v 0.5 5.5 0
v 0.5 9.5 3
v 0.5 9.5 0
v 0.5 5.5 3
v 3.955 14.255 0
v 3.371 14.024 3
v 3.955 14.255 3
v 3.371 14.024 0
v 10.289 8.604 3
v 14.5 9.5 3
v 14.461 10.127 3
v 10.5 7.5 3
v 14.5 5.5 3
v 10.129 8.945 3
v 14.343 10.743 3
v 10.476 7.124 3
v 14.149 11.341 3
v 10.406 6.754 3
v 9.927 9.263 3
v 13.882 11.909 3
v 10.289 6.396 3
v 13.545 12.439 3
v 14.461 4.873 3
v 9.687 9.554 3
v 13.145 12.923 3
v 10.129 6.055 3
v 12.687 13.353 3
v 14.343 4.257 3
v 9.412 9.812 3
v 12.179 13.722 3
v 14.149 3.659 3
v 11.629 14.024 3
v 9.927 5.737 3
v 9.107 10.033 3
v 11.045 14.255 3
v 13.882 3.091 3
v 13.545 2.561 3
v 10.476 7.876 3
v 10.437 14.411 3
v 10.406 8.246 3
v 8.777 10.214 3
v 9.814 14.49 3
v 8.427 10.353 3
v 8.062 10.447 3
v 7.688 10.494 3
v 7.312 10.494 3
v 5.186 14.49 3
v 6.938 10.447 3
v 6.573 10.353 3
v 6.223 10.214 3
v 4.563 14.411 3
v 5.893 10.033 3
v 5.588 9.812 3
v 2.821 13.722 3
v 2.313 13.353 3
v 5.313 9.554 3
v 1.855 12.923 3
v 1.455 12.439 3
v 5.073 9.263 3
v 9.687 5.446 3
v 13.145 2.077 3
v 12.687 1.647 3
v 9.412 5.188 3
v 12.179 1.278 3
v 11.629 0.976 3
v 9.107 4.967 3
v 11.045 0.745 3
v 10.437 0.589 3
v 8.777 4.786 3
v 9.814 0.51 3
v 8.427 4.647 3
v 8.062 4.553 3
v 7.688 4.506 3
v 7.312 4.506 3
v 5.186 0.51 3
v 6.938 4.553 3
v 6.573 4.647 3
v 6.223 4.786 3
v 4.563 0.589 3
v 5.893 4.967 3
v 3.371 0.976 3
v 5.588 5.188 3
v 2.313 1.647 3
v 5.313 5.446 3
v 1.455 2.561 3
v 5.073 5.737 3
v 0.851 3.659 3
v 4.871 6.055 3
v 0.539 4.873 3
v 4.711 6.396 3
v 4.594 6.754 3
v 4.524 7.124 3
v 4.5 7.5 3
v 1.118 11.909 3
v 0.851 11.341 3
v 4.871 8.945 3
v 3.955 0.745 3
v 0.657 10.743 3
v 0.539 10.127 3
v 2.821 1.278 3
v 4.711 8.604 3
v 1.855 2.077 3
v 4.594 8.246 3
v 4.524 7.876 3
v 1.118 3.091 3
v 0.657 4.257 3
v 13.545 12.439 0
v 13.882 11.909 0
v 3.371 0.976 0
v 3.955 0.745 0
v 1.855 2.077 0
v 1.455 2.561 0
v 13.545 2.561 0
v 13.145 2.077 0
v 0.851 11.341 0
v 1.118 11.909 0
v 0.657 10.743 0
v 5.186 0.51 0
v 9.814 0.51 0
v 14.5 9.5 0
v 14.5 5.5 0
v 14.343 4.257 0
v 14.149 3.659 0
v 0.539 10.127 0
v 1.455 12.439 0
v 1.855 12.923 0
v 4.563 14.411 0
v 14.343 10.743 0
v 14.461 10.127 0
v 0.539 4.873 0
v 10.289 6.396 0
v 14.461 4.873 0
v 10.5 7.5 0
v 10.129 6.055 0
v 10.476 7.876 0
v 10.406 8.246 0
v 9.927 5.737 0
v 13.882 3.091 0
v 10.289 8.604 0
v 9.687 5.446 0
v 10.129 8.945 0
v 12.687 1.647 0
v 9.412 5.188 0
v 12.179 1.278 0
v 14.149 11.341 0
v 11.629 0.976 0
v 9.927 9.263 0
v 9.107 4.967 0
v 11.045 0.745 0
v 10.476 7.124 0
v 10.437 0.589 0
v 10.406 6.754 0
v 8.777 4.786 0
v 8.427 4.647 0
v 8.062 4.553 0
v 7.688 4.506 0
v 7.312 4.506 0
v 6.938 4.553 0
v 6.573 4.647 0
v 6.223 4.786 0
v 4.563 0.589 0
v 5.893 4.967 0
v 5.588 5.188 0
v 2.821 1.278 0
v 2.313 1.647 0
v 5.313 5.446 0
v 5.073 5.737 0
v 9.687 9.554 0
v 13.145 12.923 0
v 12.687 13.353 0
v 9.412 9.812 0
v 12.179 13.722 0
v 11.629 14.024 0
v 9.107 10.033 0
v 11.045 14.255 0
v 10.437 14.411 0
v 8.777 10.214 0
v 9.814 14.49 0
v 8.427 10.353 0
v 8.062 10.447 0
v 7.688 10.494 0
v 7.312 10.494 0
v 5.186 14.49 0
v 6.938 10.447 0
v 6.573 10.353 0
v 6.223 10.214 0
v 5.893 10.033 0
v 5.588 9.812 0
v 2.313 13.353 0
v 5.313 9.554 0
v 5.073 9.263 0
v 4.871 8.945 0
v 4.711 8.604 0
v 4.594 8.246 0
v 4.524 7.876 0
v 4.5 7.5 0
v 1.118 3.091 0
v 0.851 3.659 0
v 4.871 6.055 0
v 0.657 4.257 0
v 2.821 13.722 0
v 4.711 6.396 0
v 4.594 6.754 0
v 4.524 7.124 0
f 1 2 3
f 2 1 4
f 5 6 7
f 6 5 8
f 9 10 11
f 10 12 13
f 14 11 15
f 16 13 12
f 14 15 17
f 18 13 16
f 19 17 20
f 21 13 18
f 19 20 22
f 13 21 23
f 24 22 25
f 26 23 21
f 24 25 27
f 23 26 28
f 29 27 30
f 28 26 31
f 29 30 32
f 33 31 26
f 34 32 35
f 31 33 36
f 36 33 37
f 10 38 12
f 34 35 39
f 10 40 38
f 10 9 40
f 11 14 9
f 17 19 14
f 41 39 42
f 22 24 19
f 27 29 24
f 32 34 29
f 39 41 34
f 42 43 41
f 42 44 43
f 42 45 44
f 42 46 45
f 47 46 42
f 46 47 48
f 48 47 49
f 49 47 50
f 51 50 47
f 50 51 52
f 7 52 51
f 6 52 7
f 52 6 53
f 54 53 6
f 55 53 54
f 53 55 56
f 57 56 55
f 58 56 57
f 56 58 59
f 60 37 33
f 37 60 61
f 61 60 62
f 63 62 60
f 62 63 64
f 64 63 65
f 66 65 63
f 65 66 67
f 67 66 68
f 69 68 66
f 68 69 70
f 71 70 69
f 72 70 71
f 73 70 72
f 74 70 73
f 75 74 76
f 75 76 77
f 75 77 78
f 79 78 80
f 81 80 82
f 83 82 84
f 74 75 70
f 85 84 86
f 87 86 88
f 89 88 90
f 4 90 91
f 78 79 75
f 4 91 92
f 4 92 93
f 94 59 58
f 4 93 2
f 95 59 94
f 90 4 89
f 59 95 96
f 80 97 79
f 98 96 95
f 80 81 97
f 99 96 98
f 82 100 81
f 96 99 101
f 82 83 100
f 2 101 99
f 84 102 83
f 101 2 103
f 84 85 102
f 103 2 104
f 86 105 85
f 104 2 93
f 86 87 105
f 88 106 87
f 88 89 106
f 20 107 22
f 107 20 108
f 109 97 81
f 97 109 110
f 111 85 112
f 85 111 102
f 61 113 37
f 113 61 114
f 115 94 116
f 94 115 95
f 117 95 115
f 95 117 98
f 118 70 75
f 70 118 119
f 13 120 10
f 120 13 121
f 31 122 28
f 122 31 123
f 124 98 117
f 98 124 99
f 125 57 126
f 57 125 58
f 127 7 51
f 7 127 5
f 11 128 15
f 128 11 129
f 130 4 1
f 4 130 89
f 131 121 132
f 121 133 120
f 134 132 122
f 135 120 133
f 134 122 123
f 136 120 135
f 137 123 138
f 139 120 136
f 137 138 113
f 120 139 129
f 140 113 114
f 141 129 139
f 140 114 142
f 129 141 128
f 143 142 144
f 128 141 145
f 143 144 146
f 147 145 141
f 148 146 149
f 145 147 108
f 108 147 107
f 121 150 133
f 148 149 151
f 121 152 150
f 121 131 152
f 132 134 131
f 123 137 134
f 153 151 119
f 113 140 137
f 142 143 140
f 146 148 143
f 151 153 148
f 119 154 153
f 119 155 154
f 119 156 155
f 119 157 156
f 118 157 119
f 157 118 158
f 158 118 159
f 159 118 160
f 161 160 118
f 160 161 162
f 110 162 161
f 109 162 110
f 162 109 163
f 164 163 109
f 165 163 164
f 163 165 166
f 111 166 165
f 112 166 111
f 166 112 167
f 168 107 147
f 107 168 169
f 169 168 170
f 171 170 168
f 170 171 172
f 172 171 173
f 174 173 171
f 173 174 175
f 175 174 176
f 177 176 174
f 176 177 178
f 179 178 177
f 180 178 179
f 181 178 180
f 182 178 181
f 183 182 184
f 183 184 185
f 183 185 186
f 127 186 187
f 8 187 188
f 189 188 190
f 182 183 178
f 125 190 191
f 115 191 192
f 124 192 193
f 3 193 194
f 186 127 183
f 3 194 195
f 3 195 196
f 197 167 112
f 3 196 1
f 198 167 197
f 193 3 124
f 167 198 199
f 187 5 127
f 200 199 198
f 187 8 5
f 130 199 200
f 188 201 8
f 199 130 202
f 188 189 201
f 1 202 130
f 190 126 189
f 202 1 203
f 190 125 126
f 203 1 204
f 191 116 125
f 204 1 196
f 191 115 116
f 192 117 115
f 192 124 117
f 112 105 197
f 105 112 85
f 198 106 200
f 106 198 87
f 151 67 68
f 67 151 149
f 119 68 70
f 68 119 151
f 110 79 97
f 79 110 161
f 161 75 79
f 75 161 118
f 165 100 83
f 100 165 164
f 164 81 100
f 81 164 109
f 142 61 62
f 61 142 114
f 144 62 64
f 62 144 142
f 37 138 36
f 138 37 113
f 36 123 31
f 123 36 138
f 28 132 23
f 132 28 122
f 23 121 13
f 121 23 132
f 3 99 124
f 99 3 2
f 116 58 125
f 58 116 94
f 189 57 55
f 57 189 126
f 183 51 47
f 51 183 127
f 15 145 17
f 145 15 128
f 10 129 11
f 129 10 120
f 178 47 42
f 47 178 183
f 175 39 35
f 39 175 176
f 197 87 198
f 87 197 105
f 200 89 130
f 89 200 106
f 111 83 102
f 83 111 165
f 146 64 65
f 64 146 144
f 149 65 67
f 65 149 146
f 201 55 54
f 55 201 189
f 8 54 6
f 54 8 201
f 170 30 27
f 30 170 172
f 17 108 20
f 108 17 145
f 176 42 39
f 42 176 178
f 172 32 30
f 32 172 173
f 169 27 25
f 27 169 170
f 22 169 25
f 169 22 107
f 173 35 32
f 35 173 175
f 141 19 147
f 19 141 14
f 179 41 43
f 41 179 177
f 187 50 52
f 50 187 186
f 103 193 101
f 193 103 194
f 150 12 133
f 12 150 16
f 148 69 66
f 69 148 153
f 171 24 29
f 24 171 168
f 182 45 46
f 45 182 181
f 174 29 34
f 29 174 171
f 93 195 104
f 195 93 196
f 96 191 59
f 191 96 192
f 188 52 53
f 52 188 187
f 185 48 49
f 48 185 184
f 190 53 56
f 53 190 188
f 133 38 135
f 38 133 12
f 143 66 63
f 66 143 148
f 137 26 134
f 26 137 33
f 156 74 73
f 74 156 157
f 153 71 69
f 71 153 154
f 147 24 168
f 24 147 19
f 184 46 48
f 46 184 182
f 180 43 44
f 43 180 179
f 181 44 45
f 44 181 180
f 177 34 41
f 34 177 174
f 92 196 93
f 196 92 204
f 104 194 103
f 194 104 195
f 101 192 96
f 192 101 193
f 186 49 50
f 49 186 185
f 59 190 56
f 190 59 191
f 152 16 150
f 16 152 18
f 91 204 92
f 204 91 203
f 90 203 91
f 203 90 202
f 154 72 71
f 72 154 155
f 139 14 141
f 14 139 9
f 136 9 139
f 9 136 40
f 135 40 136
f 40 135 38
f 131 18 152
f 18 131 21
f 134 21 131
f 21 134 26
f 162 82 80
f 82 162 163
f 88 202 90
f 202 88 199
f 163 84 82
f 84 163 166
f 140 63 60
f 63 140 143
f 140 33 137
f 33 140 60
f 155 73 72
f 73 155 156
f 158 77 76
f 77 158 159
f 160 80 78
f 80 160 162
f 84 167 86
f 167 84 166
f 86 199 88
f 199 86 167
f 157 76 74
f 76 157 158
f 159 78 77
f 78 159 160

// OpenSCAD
// Generated by SolidPython 1.1.3 on 2023-01-30 13:24:27
$fn = 50;


difference() {
	union() {
		translate(v = [7.5000000000, 7.5000000000, 0]) {
			rotate(a = [0, 0, 0]) {
				hull() {
					translate(v = [-2.0000000000, 2.0000000000, 0]) {
						rotate(a = [0, 0, 0]) {
							translate(v = [0, 0, 0]) {
								rotate(a = [0, 0, 0]) {
									cylinder(h = 3, r = 5);
								}
							}
						}
					}
					translate(v = [2.0000000000, 2.0000000000, 0]) {
						rotate(a = [0, 0, 0]) {
							translate(v = [0, 0, 0]) {
								rotate(a = [0, 0, 0]) {
									cylinder(h = 3, r = 5);
								}
							}
						}
					}
					translate(v = [-2.0000000000, -2.0000000000, 0]) {
						rotate(a = [0, 0, 0]) {
							translate(v = [0, 0, 0]) {
								rotate(a = [0, 0, 0]) {
									cylinder(h = 3, r = 5);
								}
							}
						}
					}
					translate(v = [2.0000000000, -2.0000000000, 0]) {
						rotate(a = [0, 0, 0]) {
							translate(v = [0, 0, 0]) {
								rotate(a = [0, 0, 0]) {
									cylinder(h = 3, r = 5);
								}
							}
						}
					}
				}
			}
		}
	}
	union() {
		translate(v = [7.5000000000, 7.5000000000, 0]) {
			rotate(a = [0, 0, 0]) {
				translate(v = [0, 0, -50]) {
					rotate(a = [0, 0, 0]) {
						cylinder(h = 100, r = 3.0000000000);
					}
				}
			}
		}
	}
}
/***********************************************
*********      SolidPython code:      **********
************************************************
 
from solid import *
import os
import subprocess

import oomB

import opsc_library_gen

mode = "laser"
#mode = "3d_print"

defined_objects = {}

radius_dict = {}
countersunk_dict = {}


def set_mode(m):
    global mode
    mode = m
    radius_dict['M6'] = 6.5/2
    radius_dict['M3'] = 3.3/2
    if mode == "laser":
        radius_dict['M6'] = 6/2
        radius_dict['M3'] = 3/2

    countersunk_dict['M3'] = {}
    countersunk_dict['M3']['little_rad'] = radius_dict['M3']
    countersunk_dict['M3']['big_rad'] = (5.5+0.6)/2
    if mode == "laser":
        countersunk_dict['M3']['big_rad'] = (4.75+0.6)/2
        countersunk_dict['M3']['little_rad'] = (4.75+0.6)/2

    countersunk_dict['M3']['height'] = 1.7


def opsc_make_object(filename, objects, save_type="none",resolution=50, layers = 1, tilediff = 200, mode="laser"):
    set_mode(mode)
    save_type = save_type.lower()
    os.makedirs(os.path.dirname(filename), exist_ok=True)
    final_object = opsc_get_object(objects)
    # Save the final object to the specified filename    
    scad_render_to_file(final_object, filename, file_header='$fn = %s;' % resolution, include_orig_code=True)
    if mode == "laser":
        filename_laser = filename.replace(".scad","-flat.scad")
        scad_render_to_file(getLaser(final_object, layers=layers, tilediff=tilediff), filename_laser, file_header='$fn = %s;' % resolution, include_orig_code=True)
        if save_type == "all":
            saveToAll(filename_laser)
        elif save_type == "dxf":
            saveToDxf(filename_laser)
    if save_type == "all":
        saveToAll(filename)
    elif save_type == "dxf":
        saveToDxf(filename)


def opsc_get_object(objects):
    # Create the solidpython objects
    positive_objects = [get_opsc_item(obj) for obj in objects if obj['type'] == 'positive']
    negative_objects = [get_opsc_item(obj) for obj in objects if obj['type'] == 'negative']
    # Union the positive objects
    positive_object = union()(*positive_objects)
    # Union the negative objects
    negative_object = union()(*negative_objects)
    # Create the final object by subtracting the negative objects from the positive objects
    return difference()(positive_object, negative_object)

def get_opsc_item(params):
    # A dictionary to map radius string values to numerical values
    #radius_dict = {'small': 5, 'medium': 10, 'large': 15}
    # An array of function names for basic shapes
    basic_shapes = ['cube', 'sphere', 'cylinder']
    
    # An array of function names for other shapes
    other_shapes = ['hole', 'slot', 'rounded_rectangle', 'countersunk']
    


    # Convert radius to r if present, and remove radius from the params dictionary
    if 'radius' in params:
        if isinstance(params['radius'], str):
            # Use the radius_dict to map the radius string value to a numerical value
            params['r'] = radius_dict[params['radius']]
        else:
            params['r'] = params['radius']
        del params['radius']
    

    # Check if the object type is a basic shape
    if params['shape'] in basic_shapes:
        # Remove shape and unexpected dictionary values
        allowed_keys = {'size', 'r', 'r1', 'r2', 'd', 'h', 'rw', 'rh', 'dw', 'dh'}
        shape_params = {k: v for k, v in params.items() if k in allowed_keys}

        # Call the corresponding function for the shape parameter, using ** notation to pass the shape_params dictionary as keyword arguments
        return get_opsc_transform(params,globals()[params['shape']](**shape_params))
    
    # If the object type is not a basic shape, check if it's a defined object or one of the other shapes
    elif params['shape'] in other_shapes:
        # Call the corresponding function for the shape parameter, passing the params dictionary as an argument
        p2 = copy.deepcopy(params)
        p2["pos"] = [0,0,0]
        return get_opsc_transform(params,globals()[params['shape']](p2))
    
    # If the object is not a basic shape or a defined object, try to import it from a .scad file
    else:
        obj = defined_objects[params['shape']]
        return get_opsc_transform(params,obj)

def get_opsc_transform(params, solid_obj):
    # Rotate the object based on the 'rot' field in the params dictionary, or the 'rotX', 'rotY', and 'rotZ' fields if 'rot' is not present
    rot = params.get('rot', [])
    if rot:
        rotX, rotY, rotZ = rot
    else:
        rotX = params.get('rotX', 0)
        rotY = params.get('rotY', 0)
        rotZ = params.get('rotZ', 0)
    solid_obj = rotate([rotX, rotY, rotZ])(solid_obj)

    # Translate the object based on the 'pos' field in the params dictionary, or the 'x', 'y', and 'z' fields if 'pos' is not present
    pos = params.get('pos', [])
    if pos:
        x, y, z = pos
    else:
        x = params.get('x', 0)
        y = params.get('y', 0)
        z = params.get('z', 0)
    solid_obj = translate([x, y, z])(solid_obj)
    return solid_obj


import random

def opsc_easy_array(type, shape, repeats, pos_start, shift_arr, **kwargs):
    for i in range(0,3):
        repeats.append(1)
        pos_start.append(0)
        shift_arr.append(0)
    return_objects = []

    for x in range(0,repeats[0]):
        for y in range(0,repeats[1]):
            for z in range(0,repeats[2]):
                return_objects.append(opsc_easy(type, shape, pos=[pos_start[0]+x*shift_arr[0],pos_start[1]+y*shift_arr[1],pos_start[2]+z*shift_arr[2]], **kwargs))
    return return_objects                



def opsc_easy(type, shape, **kwargs):
    obj = {
        'type': type,
        'shape': shape
    }
    for param in ['size', 'r', 'r1', 'r2', 'd', 'h', 'rw', 'rh', 'dw', 'dh', 'pos', 'x', 'y', 'z', 'rot', 'rotX', 'rotY', 'rotZ', "w"]:
        if param in kwargs:
            obj[param] = kwargs[param]
    return obj

def hole(params):
    p2 = copy.deepcopy(params)  
    # Check if the radius is a string and replace it with the corresponding value from the dictionary
    if isinstance(p2['r'], str):
        p2['r'] = radius_dict[p2['r']]
    
    # Set the height to 100 if not specified
    if 'h' not in p2:
        p2['h'] = 100
        p2["pos"] = [0,0,-50]
    p2["center"] = True
    # Create the cylinder object
    p2["shape"] = "cylinder"
    p2["type"] = "positive"

    return get_opsc_item(p2)

import copy

def countersunk(params):
    p2 = copy.deepcopy(params)
    counter_rad = p2['r']
    p2['r'] = radius_dict[p2['r']]
    hp = copy.deepcopy(p2)
    hp["type"] = "positive"
    hp["shape"] = "hole"
    del hp["rot"]
    hol = get_opsc_item(hp)
    
    cp = copy.deepcopy(p2)
    cp["h"] = countersunk_dict[counter_rad]["height"]
    cp["r2"] = countersunk_dict[counter_rad]["little_rad"]
    cp["r1"] = countersunk_dict[counter_rad]["big_rad"]
    del cp["r"]
    del cp["rot"]
    cp["type"] = "positive"
    cp["shape"] = "cylinder"
    cp["pos"] = [0,0,0]

    top = get_opsc_item(cp)
    return union()(hol,top)



def slot(params):  
    p2 = copy.deepcopy(params) 
    if isinstance(p2['r'], str):
        p2['r'] = radius_dict[p2['r']]
    p2["type"] = "positive"
    p2["shape"] = "hole"
    del p2["rot"]
    p2["pos"] = [0,0,0]
    left = copy.deepcopy(p2)
    right = copy.deepcopy(p2)
    left["pos"][0] = p2["w"] / 2 - p2["r"] 
    
    right["pos"][0] = -p2["w"] / 2 + p2["r"] 
    pass
    leftObj = get_opsc_item(left)
    rightObj = get_opsc_item(right)
    return hull()(leftObj, rightObj)

def rounded_rectangle(params):   
    p2 = copy.deepcopy(params) 
    p2["h"] = p2["size"][2]
    p2["pos"] = p2.get("pos", [0, 0, 0]) 
    p2["type"] = "positive"
    p2["shape"] = "hole"
    p2["pos"] = [0,0,0]
    
    if 'rot' in p2:
        del p2["rot"]   
    if 'r' not in p2:
        p2["r"] = 5 
    tl = copy.deepcopy(p2)
    tr = copy.deepcopy(p2)
    bl = copy.deepcopy(p2)
    br = copy.deepcopy(p2)
    tl["pos"][0] = -(p2["size"][0] - p2["r"]*2)/2
    tl["pos"][1] = (p2["size"][1] - p2["r"]*2)/2
    tr["pos"][0] = (p2["size"][0] - p2["r"]*2)/2
    tr["pos"][1] = (p2["size"][1] - p2["r"]*2)/2
    bl["pos"][0] = -(p2["size"][0] - p2["r"]*2)/2
    bl["pos"][1] = -(p2["size"][1] - p2["r"]*2)/2
    br["pos"][0] = (p2["size"][0] - p2["r"]*2)/2
    br["pos"][1] = -(p2["size"][1] - p2["r"]*2)/2
    del tl["size"]
    del tr["size"]
    del bl["size"]
    del br["size"]
    tlo = get_opsc_item(tl)
    tro = get_opsc_item(tr)
    blo = get_opsc_item(bl)
    bro = get_opsc_item(br)    
    return hull()(tlo, tro, blo, bro)



def import_scad_object(filename):
    # Import the .scad file and convert it to a solidpython object
    #filename = "parts"
    obj = import_scad(filename)
    return obj.main()
    


import os
import solid as solidpython

# A dictionary to store the defined objects


def load_scad_objects():
    opsc_library_gen.gen_library(defined_objects)

import random

def test(num_objects):
    objects = []
    for i in range(num_objects):
        # Choose a random shape
        #shape = random.choice(['cube', 'sphere', 'cylinder', 'hole', 'slot', "rounded_rectangle"])
        shape = random.choice(["rounded_rectangle"])

        # Choose a random type
        type = random.choice(['positive', 'negative'])
        
        # Create an empty object dictionary
        obj = {'shape': shape, 'type': type}
        
        # Set shape-specific parameters
        if obj['shape'] in ['cube']:
            obj['size'] =  [random.uniform(5, 15), random.uniform(5, 15), random.uniform(5, 15)]
        if obj['shape'] in ['rounded_rectangle']:
            obj['size'] =  [random.uniform(5, 15), random.uniform(5, 15), random.uniform(5, 15)]
            obj['r'] = random.uniform(0.5, 5)
        elif obj['shape'] == 'sphere':
            obj['r'] = random.uniform(5, 15)
        elif obj['shape'] in ['cylinder', 'hole']:
            obj['r'] = random.uniform(0.5, 5)
            obj['h'] = random.uniform(5, 15)
        elif obj['shape'] == 'slot':
            obj['r'] = random.uniform(0.5, 5)
            obj['h'] = random.uniform(5, 15)
            obj['w'] = random.uniform(5, 15)
        
        # Set a random position and rotation
        obj['pos'] = [random.uniform(-20, 20), random.uniform(-20, 20), random.uniform(-20, 20)]
        obj['rot'] = [random.uniform(-180, 180), random.uniform(-180, 180), random.uniform(-180, 180)]
        
        # Add the object to the list
        objects.append(obj)
    return objects

####### old file saving
def saveToAll(fileIn):
    saveToDxf(fileIn)
    saveToPng(fileIn)
    saveToStl(fileIn)
    saveToSvg(fileIn)

def saveToDxf(fileIn, fileOut="", copy_to_laser=True):
    if fileOut == "":
        fileOut = fileIn.replace(".scad",".dxf")
    saveToFile(fileIn, fileOut)


    
def saveToPng(fileIn, fileOut="",extra="--render"):
    if fileOut == "":
        fileOut = fileIn.replace(".scad",".png")
    saveToFile(fileIn, fileOut)

def saveToStl(fileIn, fileOut=""):
    if fileOut == "":
        fileOut = fileIn.replace(".scad",".stl")
    saveToFile(fileIn, fileOut)
    
def saveToSvg(fileIn, fileOut=""):
    if fileOut == "":
        fileOut = fileIn.replace(".scad",".svg")
    saveToFile(fileIn, fileOut)

def saveToFile(fileIn, fileOut,extra=""):
    #extra = extra + " --colorscheme Tomorrow"

    launchStr = 'openscad -o "' + fileOut + '"' + extra + ' "' + fileIn + '"'
    if ".png" in fileOut:
        launchStr = launchStr + " --render"
    print("            saveToFile launch string: " + launchStr)
    subprocess.run(launchStr)
    x=0

def getLaser(final_object,start=1.5,layers=1,thickness=3,tilediff=200):
        rv= []

        for x in range(layers):
            rv.append(translate([0,x*tilediff,0])(
                    projection()(
                        intersection()(translate([-500,-500,start+x*thickness])(cube(size=[1000,1000,0.1])),
                            final_object
                        )
                    )
            )
            )
            
        return union()(rv)

set_mode("laser")
load_scad_objects() 
 
************************************************/
